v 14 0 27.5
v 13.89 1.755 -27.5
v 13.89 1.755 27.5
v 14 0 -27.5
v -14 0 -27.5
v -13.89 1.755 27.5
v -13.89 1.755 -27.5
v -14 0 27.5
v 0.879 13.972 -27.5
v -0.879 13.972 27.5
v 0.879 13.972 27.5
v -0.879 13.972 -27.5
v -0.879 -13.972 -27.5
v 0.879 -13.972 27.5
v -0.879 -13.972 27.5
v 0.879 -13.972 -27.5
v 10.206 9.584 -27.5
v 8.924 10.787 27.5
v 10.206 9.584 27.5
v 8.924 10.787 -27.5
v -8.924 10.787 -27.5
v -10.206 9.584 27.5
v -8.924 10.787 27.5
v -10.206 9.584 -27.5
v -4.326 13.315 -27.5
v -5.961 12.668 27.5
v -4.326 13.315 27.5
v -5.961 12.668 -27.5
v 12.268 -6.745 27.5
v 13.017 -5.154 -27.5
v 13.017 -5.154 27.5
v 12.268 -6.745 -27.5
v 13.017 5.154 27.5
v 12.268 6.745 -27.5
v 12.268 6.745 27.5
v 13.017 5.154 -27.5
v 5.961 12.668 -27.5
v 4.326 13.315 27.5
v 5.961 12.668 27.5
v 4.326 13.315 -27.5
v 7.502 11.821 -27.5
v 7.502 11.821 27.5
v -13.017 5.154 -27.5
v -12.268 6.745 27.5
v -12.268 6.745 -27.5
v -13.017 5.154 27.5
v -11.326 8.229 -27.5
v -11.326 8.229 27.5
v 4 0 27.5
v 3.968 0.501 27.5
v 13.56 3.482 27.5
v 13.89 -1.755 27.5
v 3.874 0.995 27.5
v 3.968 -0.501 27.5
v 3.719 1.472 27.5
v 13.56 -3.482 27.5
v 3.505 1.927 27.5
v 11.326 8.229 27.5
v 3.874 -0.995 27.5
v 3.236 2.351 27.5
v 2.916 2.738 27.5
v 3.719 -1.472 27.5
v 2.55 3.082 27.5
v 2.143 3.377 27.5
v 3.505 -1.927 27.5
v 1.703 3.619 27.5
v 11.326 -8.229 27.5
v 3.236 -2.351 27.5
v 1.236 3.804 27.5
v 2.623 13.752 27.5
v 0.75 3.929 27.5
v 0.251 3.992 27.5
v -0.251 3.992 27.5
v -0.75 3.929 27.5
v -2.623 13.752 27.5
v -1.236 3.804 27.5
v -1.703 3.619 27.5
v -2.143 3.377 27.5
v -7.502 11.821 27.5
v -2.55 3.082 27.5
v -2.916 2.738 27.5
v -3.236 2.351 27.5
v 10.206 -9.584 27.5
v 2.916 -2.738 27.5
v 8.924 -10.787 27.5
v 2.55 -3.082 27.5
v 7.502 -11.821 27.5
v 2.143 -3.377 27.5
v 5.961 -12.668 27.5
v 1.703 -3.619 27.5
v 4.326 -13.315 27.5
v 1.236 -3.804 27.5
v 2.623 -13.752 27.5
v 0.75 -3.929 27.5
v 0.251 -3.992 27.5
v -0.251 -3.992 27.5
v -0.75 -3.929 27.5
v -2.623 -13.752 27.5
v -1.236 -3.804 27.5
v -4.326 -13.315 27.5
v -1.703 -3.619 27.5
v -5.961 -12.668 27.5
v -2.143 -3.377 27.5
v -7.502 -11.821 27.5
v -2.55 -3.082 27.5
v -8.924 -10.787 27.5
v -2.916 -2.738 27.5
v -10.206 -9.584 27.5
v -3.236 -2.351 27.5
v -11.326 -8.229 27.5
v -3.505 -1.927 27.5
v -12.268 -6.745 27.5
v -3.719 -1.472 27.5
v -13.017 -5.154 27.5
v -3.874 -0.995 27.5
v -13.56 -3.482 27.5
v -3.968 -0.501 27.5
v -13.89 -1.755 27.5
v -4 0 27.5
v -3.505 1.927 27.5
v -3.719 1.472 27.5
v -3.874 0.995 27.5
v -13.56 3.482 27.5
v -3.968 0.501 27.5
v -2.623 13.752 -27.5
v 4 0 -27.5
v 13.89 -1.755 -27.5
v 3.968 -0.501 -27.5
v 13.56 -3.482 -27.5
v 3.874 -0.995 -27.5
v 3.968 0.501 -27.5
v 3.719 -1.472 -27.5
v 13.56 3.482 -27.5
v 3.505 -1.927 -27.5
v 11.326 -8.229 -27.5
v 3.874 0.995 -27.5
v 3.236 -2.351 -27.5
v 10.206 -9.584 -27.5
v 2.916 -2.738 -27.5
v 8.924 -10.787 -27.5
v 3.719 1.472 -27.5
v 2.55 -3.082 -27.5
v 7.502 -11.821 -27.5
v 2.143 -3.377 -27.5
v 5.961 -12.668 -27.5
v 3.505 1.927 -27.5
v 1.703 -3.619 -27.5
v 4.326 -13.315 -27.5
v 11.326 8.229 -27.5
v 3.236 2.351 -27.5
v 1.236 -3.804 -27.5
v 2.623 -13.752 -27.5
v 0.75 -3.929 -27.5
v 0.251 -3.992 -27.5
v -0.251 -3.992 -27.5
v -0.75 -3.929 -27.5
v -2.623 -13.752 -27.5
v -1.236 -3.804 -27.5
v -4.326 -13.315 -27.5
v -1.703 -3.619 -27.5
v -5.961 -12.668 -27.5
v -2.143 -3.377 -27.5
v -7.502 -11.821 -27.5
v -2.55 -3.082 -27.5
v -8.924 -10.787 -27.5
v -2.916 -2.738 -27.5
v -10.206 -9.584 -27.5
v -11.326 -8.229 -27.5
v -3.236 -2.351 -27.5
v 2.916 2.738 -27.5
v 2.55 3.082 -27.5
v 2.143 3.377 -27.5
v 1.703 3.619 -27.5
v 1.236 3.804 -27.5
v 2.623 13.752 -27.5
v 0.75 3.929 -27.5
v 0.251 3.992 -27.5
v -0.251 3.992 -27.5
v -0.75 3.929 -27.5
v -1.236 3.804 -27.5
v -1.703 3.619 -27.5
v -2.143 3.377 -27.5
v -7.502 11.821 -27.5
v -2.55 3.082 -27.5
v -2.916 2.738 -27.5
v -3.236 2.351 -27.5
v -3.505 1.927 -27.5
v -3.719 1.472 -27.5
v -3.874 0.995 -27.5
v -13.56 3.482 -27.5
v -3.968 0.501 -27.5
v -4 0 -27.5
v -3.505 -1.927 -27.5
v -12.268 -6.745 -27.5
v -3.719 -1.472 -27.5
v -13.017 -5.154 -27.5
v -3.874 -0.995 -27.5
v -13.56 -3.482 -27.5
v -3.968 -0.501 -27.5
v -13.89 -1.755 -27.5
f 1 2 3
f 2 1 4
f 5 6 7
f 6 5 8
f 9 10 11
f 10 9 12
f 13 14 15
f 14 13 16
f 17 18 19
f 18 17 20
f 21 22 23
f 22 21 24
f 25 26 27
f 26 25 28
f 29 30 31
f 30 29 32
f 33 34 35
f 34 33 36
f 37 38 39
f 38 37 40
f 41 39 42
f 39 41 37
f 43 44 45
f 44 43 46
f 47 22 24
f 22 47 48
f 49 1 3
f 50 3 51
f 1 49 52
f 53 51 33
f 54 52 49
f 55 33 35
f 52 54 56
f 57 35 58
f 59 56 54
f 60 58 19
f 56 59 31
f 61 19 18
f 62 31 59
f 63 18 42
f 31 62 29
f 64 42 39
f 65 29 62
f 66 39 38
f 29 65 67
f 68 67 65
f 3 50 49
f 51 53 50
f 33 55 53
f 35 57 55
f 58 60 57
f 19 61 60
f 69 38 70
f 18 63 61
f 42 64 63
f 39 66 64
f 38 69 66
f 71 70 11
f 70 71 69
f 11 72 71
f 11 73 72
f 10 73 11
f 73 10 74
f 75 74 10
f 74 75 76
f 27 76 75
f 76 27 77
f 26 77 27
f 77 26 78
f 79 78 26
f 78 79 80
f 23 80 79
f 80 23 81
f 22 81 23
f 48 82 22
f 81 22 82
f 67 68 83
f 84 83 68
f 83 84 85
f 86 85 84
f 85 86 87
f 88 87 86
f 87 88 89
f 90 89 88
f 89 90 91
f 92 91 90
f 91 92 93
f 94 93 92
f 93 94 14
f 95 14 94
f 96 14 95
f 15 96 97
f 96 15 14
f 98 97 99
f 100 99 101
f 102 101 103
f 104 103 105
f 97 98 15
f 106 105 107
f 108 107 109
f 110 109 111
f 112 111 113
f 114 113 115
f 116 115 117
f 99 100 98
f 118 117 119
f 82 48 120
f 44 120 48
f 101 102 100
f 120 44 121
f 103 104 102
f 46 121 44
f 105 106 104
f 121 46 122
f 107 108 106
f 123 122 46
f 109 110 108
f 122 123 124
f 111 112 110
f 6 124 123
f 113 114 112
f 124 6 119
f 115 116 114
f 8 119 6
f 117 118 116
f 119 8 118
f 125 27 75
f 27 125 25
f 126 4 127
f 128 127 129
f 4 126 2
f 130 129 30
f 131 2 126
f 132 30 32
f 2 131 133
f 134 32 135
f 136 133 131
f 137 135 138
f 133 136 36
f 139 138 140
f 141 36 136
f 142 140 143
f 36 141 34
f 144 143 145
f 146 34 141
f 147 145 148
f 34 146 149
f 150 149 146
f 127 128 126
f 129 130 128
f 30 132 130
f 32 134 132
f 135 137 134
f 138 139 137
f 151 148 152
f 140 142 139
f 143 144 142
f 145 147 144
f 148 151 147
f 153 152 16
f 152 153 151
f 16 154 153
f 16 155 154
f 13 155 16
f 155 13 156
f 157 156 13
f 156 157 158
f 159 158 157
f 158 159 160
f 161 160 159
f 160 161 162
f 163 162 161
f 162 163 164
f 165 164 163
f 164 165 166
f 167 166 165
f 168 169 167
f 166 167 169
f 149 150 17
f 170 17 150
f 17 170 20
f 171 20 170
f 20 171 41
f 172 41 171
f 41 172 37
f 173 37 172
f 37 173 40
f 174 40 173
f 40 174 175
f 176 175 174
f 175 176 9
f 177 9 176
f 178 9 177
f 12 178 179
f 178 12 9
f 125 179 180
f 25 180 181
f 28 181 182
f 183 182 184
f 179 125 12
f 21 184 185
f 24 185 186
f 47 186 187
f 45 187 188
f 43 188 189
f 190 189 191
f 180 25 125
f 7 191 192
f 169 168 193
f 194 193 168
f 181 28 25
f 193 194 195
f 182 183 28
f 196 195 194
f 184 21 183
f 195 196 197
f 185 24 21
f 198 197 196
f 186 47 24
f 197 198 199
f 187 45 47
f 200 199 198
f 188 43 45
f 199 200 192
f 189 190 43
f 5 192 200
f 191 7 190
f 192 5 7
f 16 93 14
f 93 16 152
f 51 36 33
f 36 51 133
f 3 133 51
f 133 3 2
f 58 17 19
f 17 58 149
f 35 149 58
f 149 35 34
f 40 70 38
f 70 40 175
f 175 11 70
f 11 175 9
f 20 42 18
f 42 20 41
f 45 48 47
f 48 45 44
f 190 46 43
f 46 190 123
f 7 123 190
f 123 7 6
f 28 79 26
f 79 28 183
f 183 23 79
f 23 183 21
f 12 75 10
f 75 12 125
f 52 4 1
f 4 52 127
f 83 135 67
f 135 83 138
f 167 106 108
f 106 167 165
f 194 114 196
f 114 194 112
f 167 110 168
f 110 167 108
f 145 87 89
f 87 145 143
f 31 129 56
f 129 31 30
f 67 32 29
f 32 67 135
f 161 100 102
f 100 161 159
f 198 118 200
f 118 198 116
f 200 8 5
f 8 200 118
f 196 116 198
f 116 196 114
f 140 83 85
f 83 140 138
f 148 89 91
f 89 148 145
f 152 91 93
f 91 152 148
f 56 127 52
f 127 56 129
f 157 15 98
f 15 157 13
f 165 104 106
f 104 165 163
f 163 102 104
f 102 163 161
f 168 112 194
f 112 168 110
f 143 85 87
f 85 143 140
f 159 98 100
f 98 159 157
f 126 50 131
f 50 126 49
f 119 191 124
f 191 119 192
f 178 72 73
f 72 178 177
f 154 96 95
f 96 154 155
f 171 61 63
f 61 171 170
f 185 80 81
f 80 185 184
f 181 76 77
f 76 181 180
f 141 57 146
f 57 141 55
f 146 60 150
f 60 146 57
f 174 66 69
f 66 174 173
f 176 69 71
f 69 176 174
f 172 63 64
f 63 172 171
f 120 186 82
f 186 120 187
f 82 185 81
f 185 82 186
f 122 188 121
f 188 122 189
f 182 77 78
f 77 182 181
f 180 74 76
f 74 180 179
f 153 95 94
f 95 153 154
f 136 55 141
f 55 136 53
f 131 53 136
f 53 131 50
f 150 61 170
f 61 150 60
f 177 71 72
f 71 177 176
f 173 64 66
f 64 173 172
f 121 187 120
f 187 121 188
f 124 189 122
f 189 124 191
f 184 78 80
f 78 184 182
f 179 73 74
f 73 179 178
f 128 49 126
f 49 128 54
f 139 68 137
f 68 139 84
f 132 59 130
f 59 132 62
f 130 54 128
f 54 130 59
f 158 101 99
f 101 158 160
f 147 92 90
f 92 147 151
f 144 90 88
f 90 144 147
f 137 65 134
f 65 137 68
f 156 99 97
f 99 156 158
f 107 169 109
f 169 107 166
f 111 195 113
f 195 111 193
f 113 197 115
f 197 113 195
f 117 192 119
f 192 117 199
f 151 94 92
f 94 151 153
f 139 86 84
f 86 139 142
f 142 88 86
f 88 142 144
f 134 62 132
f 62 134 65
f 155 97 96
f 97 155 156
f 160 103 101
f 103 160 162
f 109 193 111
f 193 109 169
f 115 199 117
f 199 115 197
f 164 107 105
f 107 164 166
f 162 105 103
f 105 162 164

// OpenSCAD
$fn = 50;


difference() {
	union() {
		translate(v = [0, 0, -27.5000000000]) {
			cylinder(h = 55, r = 14.0000000000);
		}
	}
	union() {
		translate(v = [0, 0, -100.0000000000]) {
			cylinder(h = 200, r = 4.0000000000);
		}
	}
}
